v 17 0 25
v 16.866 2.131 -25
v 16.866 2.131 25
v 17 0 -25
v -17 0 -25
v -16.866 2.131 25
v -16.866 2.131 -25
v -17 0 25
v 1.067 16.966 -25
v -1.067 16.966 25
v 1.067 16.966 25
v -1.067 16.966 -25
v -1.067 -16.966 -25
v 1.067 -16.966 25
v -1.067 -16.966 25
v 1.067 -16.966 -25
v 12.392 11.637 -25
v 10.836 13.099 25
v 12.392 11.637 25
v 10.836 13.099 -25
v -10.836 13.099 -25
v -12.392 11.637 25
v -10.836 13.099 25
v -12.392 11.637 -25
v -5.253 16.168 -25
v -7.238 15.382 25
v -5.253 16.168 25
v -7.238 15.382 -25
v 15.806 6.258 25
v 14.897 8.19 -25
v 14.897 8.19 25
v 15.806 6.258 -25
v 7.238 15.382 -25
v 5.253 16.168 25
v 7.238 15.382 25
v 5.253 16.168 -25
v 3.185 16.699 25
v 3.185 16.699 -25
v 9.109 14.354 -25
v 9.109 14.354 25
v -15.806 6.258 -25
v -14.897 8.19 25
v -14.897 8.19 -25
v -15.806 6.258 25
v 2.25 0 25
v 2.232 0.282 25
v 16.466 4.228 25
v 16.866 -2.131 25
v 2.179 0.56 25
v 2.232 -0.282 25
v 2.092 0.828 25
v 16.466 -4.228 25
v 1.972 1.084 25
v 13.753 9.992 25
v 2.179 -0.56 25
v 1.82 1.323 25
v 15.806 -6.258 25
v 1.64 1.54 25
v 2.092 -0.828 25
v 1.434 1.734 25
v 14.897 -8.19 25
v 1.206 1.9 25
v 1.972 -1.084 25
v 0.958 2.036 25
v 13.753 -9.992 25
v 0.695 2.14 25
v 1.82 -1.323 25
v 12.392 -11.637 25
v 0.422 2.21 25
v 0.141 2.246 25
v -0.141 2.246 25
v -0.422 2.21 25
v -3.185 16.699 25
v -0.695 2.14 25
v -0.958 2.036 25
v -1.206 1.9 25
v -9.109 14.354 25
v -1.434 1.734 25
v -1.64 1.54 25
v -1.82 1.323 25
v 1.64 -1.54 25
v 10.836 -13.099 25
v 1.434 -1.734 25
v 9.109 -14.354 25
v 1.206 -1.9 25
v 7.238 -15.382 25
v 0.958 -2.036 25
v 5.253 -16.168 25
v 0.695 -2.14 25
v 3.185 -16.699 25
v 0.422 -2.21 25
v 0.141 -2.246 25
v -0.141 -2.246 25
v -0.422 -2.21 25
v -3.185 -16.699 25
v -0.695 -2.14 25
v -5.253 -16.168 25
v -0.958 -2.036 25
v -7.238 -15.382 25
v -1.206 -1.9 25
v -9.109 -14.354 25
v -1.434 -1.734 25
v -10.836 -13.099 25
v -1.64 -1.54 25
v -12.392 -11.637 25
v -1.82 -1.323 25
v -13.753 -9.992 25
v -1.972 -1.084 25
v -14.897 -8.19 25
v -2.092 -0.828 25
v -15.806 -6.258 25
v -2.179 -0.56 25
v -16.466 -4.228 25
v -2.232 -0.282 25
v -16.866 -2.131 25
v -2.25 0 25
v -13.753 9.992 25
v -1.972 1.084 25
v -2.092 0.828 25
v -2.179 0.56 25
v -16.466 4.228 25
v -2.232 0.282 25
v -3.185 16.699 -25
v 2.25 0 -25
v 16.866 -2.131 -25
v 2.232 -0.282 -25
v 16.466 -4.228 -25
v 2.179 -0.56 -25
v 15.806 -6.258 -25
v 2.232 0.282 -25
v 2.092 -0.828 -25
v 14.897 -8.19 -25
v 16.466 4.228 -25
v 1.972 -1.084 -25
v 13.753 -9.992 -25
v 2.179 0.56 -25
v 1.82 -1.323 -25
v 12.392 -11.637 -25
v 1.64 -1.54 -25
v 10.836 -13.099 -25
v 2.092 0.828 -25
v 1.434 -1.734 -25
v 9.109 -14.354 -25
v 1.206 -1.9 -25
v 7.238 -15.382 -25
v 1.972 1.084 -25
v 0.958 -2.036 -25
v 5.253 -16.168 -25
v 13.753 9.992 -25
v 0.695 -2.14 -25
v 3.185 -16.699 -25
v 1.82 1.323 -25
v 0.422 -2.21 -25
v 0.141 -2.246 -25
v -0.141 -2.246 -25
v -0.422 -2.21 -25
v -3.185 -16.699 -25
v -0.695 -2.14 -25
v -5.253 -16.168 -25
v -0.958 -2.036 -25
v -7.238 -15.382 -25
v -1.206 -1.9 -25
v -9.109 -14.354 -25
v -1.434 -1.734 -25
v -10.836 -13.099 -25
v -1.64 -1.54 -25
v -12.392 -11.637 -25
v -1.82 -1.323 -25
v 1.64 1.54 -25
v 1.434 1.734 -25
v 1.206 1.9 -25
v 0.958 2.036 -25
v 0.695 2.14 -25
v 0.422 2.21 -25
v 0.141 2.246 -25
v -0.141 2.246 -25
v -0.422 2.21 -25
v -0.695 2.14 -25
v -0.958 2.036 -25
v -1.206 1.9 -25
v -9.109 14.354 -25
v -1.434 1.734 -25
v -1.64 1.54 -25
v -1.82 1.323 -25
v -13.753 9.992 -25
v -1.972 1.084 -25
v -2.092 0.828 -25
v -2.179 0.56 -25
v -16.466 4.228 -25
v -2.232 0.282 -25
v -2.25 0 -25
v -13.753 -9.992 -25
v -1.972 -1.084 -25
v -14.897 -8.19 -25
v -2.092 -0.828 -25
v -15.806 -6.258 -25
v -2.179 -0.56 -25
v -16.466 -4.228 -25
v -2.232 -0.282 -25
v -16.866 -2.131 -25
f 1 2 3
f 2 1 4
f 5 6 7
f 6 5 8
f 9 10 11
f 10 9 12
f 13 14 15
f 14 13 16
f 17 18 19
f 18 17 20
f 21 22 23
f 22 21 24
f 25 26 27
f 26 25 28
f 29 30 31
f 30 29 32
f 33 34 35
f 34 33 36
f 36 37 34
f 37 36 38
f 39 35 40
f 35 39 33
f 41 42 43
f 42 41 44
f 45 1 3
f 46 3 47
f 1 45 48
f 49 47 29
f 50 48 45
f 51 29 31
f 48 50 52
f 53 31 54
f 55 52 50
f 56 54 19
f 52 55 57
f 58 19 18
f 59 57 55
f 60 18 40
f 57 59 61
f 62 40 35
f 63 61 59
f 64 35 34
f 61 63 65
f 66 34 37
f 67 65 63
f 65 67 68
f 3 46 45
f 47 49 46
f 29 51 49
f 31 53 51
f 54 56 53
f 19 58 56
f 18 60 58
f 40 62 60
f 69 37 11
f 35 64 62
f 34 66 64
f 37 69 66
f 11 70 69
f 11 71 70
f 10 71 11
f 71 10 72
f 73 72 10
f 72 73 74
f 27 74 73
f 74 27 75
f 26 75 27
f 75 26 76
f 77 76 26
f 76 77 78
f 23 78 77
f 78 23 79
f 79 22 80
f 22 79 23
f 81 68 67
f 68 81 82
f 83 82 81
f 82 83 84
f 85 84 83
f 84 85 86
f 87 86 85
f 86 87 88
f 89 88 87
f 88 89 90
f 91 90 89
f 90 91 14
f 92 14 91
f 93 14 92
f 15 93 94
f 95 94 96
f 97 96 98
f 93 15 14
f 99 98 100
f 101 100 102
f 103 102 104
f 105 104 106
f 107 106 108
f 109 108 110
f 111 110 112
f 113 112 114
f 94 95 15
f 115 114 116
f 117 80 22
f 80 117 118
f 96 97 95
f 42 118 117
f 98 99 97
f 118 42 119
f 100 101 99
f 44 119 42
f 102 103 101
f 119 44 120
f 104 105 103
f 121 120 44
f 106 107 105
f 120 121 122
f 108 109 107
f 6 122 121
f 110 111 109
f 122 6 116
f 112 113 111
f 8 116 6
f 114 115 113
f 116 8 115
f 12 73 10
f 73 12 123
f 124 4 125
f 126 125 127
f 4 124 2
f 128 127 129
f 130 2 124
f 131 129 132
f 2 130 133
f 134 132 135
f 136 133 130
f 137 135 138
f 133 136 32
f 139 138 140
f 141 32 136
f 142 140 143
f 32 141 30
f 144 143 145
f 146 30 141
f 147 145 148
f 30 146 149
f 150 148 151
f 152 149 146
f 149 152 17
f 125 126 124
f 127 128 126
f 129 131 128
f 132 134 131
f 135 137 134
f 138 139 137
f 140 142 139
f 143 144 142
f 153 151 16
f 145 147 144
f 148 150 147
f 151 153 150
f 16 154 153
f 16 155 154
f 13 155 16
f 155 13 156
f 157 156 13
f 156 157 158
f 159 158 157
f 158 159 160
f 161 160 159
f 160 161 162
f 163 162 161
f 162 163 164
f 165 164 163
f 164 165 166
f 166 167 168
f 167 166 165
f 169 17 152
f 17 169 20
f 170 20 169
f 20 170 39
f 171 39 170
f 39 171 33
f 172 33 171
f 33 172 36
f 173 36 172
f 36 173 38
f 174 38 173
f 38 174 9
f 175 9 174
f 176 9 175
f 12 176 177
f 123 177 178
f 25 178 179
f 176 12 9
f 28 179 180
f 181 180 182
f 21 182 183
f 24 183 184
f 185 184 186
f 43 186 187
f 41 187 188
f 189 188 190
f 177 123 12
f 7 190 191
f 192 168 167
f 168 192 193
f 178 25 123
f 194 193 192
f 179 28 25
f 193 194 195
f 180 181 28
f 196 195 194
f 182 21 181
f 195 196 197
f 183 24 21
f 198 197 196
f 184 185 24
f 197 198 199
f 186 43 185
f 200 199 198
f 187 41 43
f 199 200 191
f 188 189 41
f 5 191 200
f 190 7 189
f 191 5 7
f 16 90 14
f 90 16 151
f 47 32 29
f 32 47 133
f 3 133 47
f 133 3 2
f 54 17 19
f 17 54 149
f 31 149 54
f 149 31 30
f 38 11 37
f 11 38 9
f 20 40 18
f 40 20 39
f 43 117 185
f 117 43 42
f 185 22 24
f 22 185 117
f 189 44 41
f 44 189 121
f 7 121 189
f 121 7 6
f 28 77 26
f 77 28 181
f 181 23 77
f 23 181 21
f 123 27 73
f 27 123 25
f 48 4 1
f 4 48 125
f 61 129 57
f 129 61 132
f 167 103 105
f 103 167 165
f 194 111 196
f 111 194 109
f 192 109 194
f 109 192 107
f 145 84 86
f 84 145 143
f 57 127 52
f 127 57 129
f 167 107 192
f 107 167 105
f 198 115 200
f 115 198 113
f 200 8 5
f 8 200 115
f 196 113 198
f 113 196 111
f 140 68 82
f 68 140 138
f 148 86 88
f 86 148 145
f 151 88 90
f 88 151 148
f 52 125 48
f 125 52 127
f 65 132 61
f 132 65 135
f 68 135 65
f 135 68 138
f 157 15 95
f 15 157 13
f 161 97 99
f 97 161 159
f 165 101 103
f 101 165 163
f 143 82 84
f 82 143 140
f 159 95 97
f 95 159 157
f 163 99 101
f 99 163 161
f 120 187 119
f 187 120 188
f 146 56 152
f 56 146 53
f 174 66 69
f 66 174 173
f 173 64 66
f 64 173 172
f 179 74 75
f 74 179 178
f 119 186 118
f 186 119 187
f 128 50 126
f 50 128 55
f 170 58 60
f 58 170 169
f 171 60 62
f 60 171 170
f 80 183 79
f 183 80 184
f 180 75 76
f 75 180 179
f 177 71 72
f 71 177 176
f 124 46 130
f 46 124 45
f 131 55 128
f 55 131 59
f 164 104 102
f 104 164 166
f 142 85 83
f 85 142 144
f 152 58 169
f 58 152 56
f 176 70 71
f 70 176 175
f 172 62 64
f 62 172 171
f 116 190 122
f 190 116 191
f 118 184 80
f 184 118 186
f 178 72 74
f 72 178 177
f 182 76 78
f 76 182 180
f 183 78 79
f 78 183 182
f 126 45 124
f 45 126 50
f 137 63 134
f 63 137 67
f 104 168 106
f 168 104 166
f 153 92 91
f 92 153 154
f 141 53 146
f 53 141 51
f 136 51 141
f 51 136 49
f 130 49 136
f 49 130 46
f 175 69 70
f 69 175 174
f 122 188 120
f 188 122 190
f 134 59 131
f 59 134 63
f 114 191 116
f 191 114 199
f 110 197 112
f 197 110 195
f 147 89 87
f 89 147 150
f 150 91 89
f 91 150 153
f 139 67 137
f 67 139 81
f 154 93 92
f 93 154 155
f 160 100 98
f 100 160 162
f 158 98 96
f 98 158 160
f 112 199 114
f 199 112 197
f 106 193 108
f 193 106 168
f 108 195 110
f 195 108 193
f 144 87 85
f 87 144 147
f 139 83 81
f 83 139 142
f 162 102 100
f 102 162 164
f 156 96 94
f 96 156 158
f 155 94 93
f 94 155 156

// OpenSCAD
$fn = 50;


difference() {
	union() {
		translate(v = [0, 0, -25.0000000000]) {
			cylinder(h = 50, r = 17.0000000000);
		}
	}
	union() {
		translate(v = [0, 0, -100.0000000000]) {
			cylinder(h = 200, r = 2.2500000000);
		}
	}
}
